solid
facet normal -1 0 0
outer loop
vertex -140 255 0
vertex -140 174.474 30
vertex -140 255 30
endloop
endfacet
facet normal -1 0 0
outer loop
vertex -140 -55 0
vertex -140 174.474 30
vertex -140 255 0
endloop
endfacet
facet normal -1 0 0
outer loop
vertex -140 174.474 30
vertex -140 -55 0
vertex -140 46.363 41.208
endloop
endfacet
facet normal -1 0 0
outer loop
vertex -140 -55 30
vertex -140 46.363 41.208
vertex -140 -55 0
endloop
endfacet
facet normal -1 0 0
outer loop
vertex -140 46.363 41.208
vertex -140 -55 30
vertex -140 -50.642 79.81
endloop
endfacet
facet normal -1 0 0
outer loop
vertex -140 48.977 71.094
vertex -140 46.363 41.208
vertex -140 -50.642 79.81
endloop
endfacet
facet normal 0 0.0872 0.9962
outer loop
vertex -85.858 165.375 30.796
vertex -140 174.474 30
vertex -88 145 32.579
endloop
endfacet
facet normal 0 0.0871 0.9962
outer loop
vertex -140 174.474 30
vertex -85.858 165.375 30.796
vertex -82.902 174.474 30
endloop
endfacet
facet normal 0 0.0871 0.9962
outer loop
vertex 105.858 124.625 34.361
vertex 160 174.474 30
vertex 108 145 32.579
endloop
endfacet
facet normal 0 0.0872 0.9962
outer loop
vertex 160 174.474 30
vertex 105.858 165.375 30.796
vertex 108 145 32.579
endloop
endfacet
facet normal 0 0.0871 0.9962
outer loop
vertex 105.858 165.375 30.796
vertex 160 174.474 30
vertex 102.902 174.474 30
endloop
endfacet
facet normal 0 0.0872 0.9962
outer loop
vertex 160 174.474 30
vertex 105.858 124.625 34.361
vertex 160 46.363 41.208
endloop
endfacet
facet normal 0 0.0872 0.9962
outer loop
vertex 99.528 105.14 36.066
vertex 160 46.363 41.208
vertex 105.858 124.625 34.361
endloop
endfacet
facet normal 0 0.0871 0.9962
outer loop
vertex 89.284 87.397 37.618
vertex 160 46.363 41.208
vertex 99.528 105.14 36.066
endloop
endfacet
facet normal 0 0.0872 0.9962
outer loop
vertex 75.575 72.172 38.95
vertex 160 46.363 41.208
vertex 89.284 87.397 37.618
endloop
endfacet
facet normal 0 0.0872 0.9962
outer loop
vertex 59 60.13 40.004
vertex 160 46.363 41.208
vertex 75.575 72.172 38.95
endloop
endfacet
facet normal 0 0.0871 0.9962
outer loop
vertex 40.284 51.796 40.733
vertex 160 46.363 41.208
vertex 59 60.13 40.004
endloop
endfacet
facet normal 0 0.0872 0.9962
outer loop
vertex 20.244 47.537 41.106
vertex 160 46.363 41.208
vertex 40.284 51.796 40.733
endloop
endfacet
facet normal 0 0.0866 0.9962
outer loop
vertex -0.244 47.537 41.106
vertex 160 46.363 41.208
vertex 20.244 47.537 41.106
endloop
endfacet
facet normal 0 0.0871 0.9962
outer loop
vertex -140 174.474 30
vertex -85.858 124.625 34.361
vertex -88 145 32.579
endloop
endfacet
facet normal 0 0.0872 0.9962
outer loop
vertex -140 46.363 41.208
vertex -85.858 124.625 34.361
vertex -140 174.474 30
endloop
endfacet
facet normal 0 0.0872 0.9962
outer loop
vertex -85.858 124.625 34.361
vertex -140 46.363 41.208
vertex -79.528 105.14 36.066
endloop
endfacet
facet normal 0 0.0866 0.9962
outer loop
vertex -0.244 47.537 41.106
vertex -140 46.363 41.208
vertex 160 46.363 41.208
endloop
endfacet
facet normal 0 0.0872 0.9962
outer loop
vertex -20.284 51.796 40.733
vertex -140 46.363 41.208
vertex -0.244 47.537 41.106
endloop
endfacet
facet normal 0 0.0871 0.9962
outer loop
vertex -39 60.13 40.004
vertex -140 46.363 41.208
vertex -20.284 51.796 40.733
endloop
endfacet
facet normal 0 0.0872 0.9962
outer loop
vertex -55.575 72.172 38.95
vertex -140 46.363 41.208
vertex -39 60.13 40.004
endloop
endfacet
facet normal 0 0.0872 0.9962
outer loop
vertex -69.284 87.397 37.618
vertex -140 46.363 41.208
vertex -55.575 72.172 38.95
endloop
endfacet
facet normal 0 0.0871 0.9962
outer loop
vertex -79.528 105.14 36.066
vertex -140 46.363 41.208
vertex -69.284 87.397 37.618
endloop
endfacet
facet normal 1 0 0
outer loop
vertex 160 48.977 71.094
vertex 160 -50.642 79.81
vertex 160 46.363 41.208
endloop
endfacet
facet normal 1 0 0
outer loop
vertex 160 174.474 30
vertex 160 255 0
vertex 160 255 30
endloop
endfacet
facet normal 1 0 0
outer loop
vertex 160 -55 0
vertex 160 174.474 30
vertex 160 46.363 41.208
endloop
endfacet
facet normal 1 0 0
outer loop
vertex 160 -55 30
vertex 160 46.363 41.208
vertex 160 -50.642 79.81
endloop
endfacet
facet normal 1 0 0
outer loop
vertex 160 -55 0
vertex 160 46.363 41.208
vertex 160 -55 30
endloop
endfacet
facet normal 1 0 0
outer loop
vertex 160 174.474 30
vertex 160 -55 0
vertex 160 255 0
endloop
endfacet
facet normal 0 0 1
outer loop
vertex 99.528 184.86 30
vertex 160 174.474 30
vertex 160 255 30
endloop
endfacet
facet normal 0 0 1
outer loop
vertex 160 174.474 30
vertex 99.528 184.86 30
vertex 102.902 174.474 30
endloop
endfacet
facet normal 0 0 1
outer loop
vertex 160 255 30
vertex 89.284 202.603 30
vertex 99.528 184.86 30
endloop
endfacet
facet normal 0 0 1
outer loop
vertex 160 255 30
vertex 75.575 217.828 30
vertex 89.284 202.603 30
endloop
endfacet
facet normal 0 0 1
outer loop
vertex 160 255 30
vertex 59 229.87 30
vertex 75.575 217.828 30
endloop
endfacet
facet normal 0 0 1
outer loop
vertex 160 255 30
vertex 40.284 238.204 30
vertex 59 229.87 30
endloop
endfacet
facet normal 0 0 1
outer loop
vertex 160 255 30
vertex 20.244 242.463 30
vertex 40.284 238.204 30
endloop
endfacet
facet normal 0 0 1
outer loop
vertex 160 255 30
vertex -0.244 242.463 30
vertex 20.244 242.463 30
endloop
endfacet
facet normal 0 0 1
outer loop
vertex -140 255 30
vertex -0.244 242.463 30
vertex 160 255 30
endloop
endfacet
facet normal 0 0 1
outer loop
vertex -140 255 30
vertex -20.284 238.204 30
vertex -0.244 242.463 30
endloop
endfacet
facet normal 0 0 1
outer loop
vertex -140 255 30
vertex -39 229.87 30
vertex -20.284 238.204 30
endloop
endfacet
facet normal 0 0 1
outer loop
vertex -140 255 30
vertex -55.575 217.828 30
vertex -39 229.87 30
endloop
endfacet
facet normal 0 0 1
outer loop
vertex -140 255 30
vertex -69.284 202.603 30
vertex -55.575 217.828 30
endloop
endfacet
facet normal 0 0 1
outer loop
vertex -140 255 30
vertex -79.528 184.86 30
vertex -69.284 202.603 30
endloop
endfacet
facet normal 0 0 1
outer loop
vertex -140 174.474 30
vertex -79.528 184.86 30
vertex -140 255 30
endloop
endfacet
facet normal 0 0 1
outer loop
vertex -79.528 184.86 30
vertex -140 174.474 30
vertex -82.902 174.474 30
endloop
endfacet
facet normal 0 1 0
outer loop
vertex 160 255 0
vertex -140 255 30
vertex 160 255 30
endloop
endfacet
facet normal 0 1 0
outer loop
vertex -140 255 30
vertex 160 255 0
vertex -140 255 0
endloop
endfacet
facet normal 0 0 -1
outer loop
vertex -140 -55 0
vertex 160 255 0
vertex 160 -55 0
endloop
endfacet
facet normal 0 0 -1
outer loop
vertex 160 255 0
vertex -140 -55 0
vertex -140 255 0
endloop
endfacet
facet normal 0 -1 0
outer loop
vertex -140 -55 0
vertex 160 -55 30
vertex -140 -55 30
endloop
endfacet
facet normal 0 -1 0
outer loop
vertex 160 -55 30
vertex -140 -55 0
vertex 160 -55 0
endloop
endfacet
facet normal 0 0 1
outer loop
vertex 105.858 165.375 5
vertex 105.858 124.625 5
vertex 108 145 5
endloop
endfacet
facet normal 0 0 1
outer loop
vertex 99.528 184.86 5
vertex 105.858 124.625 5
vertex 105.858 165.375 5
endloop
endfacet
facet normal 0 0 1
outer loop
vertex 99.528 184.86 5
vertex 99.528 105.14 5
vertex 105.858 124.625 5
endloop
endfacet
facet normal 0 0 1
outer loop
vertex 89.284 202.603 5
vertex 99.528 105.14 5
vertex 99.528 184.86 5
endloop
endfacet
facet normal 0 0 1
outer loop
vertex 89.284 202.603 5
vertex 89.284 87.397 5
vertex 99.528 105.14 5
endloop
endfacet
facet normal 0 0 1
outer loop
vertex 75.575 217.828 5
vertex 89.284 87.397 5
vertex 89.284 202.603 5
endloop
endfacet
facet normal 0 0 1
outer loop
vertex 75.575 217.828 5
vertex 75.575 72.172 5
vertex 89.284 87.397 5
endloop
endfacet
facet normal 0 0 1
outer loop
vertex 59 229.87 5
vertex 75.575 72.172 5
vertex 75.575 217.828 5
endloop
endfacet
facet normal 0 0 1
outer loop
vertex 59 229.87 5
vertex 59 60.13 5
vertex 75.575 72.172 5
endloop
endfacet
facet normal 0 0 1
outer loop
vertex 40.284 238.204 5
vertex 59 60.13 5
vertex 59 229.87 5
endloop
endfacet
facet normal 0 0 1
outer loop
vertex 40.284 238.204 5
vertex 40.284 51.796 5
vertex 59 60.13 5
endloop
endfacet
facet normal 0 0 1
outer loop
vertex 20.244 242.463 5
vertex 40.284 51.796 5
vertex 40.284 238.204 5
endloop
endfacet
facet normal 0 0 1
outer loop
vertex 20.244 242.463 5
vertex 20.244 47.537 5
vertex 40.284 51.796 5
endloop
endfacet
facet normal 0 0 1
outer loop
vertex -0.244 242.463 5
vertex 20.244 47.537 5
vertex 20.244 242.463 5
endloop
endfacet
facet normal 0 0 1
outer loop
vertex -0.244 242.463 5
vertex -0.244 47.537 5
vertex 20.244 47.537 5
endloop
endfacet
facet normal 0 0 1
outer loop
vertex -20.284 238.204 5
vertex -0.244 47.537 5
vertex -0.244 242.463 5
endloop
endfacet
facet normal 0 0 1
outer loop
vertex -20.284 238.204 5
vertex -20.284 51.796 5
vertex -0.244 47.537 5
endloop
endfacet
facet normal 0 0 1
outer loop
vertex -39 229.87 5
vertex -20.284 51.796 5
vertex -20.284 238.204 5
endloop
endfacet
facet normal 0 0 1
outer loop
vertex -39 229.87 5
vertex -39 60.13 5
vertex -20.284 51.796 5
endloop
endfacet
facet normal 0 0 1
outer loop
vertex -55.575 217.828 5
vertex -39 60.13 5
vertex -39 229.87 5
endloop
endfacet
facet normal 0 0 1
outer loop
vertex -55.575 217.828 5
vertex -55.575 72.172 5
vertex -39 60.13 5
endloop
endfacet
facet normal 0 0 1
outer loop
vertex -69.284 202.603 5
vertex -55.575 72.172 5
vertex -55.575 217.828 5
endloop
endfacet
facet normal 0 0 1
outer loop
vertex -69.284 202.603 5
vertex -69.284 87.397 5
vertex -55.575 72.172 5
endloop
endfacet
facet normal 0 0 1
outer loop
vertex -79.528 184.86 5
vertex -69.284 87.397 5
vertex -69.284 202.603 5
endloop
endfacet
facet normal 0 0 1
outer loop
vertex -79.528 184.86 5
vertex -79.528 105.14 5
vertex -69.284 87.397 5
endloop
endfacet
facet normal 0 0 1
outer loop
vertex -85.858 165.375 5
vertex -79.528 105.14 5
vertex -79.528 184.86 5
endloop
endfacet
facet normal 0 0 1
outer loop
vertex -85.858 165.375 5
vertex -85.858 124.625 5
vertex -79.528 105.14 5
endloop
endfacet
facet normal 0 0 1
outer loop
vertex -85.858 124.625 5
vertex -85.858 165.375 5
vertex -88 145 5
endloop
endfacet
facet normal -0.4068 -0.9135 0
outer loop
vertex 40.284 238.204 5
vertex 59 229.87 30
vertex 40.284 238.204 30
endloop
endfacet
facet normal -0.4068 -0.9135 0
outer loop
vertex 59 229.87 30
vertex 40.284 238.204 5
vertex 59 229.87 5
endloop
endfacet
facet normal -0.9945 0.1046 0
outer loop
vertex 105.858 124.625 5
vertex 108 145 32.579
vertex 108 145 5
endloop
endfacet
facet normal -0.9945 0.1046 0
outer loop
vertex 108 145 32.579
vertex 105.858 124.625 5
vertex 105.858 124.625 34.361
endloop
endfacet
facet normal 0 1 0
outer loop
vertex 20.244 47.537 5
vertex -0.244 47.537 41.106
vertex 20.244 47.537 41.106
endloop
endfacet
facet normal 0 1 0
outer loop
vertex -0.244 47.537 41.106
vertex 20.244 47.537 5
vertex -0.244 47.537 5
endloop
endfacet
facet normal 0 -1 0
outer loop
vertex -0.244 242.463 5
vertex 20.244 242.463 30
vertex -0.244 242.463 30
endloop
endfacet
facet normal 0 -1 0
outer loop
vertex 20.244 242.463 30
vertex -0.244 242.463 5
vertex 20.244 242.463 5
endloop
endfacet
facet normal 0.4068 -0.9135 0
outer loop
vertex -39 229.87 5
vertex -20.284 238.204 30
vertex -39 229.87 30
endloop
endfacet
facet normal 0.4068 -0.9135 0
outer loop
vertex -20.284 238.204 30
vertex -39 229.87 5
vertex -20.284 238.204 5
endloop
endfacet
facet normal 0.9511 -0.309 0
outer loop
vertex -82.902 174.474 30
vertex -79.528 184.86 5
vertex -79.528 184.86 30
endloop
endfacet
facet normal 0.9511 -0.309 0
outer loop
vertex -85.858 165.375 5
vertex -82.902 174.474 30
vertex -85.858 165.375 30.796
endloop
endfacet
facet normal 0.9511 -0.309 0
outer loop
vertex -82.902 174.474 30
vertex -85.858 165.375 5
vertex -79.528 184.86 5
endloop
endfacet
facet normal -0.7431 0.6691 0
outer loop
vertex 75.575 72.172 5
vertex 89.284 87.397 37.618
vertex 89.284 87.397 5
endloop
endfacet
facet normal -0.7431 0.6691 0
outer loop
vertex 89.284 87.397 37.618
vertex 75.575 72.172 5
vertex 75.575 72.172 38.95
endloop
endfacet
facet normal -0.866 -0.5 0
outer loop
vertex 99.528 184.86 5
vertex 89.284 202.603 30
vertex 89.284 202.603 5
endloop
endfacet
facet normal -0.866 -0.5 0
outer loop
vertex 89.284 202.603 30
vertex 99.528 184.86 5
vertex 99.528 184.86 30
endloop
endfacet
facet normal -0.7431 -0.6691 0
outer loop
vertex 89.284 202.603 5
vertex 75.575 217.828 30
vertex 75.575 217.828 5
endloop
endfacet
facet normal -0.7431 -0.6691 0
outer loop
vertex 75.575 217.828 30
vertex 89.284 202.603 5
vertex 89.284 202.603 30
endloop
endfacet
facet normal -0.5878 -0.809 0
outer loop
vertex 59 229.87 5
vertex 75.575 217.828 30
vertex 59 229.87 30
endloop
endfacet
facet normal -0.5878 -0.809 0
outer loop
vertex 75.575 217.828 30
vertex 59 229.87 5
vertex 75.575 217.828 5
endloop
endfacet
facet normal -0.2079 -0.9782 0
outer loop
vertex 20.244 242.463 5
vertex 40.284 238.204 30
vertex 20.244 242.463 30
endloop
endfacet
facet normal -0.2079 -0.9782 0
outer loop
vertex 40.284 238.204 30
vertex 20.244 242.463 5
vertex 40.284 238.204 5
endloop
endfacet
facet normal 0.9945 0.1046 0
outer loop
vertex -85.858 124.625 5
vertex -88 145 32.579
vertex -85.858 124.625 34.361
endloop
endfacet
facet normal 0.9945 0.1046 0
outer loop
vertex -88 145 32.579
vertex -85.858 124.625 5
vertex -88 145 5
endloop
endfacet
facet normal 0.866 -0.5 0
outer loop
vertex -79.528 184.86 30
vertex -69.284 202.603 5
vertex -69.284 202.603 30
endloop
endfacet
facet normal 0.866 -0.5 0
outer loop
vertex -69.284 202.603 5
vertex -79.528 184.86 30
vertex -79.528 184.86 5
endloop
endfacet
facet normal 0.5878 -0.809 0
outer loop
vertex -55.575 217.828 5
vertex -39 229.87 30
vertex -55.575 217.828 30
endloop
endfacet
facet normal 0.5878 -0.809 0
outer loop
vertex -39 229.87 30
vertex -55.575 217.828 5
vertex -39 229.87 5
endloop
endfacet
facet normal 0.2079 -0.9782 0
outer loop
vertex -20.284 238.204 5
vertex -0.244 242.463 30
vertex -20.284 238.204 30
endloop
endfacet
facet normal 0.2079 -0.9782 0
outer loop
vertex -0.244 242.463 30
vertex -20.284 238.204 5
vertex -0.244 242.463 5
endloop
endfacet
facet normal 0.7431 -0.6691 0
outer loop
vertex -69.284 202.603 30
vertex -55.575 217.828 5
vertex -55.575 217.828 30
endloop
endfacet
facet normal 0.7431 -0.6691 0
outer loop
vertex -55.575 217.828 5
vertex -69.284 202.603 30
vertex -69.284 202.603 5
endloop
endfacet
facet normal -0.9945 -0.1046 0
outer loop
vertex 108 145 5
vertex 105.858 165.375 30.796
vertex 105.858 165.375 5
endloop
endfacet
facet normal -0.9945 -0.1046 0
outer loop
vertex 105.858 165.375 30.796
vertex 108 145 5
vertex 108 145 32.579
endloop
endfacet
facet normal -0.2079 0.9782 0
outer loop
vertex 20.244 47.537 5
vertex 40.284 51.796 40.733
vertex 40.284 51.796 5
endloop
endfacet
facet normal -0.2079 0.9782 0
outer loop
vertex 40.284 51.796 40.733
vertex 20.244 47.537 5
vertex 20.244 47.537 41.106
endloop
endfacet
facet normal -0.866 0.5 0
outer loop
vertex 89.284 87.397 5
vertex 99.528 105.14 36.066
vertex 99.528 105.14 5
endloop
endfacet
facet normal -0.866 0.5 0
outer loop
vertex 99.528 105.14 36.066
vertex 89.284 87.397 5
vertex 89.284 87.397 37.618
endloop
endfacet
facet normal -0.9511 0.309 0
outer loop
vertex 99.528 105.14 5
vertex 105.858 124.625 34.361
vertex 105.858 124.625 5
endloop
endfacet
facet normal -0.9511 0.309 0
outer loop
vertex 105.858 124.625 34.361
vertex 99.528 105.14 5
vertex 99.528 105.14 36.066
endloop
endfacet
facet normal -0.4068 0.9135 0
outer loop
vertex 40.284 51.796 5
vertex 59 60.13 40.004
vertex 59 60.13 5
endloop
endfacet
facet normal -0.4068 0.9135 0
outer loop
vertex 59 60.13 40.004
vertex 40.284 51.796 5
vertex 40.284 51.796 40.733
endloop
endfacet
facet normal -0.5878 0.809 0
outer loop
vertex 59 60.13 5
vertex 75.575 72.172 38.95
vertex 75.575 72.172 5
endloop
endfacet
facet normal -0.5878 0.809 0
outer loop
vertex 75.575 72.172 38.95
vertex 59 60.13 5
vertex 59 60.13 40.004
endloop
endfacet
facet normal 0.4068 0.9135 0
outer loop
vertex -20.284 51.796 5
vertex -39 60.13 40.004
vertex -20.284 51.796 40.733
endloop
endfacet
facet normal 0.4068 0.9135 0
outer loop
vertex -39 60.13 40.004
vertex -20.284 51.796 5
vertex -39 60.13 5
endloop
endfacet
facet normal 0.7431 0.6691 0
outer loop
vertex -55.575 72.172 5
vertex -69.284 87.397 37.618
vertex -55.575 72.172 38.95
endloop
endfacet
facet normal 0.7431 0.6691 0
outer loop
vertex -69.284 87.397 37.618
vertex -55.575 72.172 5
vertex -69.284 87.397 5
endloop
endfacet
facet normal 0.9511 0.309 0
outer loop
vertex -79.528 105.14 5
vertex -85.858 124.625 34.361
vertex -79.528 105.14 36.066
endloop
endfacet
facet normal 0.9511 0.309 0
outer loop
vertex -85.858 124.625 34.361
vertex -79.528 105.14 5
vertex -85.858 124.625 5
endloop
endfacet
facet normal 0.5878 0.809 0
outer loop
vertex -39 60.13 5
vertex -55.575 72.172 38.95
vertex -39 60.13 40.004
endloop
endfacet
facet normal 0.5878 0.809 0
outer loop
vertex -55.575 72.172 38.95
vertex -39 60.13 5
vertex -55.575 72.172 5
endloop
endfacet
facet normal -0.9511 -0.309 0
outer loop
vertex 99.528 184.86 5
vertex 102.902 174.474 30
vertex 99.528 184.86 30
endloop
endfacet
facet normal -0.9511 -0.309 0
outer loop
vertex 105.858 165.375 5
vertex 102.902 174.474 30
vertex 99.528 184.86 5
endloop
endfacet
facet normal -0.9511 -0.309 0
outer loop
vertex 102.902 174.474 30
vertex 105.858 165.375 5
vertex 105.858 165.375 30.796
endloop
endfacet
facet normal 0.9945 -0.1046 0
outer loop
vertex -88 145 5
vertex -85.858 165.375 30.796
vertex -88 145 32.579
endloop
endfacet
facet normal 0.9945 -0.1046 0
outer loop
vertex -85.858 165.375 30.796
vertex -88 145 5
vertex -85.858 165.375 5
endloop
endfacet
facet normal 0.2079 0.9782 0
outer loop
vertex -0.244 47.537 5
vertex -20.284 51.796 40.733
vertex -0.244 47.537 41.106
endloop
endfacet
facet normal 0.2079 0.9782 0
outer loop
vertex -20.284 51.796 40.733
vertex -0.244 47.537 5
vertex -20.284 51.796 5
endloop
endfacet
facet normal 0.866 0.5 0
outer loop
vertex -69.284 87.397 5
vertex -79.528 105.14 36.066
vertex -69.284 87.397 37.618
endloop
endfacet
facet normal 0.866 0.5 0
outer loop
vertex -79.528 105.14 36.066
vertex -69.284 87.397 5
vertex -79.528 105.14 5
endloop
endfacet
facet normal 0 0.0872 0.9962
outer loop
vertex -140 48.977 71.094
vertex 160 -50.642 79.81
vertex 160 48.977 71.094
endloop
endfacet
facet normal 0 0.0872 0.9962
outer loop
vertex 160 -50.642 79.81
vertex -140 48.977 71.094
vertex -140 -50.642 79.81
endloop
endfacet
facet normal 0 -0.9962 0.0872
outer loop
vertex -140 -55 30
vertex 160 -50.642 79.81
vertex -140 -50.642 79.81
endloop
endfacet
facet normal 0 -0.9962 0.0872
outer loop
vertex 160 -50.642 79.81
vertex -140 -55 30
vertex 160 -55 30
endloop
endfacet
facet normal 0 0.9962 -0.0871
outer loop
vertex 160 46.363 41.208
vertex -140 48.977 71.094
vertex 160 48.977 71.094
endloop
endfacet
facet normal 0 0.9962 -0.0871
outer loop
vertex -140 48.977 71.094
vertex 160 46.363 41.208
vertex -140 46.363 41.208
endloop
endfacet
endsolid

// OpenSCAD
difference(){
union(){
translate([-140, -55, 30])rotate([-5, 0, 0]) cube([300, 300, 20]);
translate([-140, -55, 0]) cube([300, 310, 30]);
}
translate([10, 145, 5])cylinder(h = 50, r = 98);
}
translate([-140, -55, 30])rotate([-5, 0, 0]) cube([300, 100, 50]);
